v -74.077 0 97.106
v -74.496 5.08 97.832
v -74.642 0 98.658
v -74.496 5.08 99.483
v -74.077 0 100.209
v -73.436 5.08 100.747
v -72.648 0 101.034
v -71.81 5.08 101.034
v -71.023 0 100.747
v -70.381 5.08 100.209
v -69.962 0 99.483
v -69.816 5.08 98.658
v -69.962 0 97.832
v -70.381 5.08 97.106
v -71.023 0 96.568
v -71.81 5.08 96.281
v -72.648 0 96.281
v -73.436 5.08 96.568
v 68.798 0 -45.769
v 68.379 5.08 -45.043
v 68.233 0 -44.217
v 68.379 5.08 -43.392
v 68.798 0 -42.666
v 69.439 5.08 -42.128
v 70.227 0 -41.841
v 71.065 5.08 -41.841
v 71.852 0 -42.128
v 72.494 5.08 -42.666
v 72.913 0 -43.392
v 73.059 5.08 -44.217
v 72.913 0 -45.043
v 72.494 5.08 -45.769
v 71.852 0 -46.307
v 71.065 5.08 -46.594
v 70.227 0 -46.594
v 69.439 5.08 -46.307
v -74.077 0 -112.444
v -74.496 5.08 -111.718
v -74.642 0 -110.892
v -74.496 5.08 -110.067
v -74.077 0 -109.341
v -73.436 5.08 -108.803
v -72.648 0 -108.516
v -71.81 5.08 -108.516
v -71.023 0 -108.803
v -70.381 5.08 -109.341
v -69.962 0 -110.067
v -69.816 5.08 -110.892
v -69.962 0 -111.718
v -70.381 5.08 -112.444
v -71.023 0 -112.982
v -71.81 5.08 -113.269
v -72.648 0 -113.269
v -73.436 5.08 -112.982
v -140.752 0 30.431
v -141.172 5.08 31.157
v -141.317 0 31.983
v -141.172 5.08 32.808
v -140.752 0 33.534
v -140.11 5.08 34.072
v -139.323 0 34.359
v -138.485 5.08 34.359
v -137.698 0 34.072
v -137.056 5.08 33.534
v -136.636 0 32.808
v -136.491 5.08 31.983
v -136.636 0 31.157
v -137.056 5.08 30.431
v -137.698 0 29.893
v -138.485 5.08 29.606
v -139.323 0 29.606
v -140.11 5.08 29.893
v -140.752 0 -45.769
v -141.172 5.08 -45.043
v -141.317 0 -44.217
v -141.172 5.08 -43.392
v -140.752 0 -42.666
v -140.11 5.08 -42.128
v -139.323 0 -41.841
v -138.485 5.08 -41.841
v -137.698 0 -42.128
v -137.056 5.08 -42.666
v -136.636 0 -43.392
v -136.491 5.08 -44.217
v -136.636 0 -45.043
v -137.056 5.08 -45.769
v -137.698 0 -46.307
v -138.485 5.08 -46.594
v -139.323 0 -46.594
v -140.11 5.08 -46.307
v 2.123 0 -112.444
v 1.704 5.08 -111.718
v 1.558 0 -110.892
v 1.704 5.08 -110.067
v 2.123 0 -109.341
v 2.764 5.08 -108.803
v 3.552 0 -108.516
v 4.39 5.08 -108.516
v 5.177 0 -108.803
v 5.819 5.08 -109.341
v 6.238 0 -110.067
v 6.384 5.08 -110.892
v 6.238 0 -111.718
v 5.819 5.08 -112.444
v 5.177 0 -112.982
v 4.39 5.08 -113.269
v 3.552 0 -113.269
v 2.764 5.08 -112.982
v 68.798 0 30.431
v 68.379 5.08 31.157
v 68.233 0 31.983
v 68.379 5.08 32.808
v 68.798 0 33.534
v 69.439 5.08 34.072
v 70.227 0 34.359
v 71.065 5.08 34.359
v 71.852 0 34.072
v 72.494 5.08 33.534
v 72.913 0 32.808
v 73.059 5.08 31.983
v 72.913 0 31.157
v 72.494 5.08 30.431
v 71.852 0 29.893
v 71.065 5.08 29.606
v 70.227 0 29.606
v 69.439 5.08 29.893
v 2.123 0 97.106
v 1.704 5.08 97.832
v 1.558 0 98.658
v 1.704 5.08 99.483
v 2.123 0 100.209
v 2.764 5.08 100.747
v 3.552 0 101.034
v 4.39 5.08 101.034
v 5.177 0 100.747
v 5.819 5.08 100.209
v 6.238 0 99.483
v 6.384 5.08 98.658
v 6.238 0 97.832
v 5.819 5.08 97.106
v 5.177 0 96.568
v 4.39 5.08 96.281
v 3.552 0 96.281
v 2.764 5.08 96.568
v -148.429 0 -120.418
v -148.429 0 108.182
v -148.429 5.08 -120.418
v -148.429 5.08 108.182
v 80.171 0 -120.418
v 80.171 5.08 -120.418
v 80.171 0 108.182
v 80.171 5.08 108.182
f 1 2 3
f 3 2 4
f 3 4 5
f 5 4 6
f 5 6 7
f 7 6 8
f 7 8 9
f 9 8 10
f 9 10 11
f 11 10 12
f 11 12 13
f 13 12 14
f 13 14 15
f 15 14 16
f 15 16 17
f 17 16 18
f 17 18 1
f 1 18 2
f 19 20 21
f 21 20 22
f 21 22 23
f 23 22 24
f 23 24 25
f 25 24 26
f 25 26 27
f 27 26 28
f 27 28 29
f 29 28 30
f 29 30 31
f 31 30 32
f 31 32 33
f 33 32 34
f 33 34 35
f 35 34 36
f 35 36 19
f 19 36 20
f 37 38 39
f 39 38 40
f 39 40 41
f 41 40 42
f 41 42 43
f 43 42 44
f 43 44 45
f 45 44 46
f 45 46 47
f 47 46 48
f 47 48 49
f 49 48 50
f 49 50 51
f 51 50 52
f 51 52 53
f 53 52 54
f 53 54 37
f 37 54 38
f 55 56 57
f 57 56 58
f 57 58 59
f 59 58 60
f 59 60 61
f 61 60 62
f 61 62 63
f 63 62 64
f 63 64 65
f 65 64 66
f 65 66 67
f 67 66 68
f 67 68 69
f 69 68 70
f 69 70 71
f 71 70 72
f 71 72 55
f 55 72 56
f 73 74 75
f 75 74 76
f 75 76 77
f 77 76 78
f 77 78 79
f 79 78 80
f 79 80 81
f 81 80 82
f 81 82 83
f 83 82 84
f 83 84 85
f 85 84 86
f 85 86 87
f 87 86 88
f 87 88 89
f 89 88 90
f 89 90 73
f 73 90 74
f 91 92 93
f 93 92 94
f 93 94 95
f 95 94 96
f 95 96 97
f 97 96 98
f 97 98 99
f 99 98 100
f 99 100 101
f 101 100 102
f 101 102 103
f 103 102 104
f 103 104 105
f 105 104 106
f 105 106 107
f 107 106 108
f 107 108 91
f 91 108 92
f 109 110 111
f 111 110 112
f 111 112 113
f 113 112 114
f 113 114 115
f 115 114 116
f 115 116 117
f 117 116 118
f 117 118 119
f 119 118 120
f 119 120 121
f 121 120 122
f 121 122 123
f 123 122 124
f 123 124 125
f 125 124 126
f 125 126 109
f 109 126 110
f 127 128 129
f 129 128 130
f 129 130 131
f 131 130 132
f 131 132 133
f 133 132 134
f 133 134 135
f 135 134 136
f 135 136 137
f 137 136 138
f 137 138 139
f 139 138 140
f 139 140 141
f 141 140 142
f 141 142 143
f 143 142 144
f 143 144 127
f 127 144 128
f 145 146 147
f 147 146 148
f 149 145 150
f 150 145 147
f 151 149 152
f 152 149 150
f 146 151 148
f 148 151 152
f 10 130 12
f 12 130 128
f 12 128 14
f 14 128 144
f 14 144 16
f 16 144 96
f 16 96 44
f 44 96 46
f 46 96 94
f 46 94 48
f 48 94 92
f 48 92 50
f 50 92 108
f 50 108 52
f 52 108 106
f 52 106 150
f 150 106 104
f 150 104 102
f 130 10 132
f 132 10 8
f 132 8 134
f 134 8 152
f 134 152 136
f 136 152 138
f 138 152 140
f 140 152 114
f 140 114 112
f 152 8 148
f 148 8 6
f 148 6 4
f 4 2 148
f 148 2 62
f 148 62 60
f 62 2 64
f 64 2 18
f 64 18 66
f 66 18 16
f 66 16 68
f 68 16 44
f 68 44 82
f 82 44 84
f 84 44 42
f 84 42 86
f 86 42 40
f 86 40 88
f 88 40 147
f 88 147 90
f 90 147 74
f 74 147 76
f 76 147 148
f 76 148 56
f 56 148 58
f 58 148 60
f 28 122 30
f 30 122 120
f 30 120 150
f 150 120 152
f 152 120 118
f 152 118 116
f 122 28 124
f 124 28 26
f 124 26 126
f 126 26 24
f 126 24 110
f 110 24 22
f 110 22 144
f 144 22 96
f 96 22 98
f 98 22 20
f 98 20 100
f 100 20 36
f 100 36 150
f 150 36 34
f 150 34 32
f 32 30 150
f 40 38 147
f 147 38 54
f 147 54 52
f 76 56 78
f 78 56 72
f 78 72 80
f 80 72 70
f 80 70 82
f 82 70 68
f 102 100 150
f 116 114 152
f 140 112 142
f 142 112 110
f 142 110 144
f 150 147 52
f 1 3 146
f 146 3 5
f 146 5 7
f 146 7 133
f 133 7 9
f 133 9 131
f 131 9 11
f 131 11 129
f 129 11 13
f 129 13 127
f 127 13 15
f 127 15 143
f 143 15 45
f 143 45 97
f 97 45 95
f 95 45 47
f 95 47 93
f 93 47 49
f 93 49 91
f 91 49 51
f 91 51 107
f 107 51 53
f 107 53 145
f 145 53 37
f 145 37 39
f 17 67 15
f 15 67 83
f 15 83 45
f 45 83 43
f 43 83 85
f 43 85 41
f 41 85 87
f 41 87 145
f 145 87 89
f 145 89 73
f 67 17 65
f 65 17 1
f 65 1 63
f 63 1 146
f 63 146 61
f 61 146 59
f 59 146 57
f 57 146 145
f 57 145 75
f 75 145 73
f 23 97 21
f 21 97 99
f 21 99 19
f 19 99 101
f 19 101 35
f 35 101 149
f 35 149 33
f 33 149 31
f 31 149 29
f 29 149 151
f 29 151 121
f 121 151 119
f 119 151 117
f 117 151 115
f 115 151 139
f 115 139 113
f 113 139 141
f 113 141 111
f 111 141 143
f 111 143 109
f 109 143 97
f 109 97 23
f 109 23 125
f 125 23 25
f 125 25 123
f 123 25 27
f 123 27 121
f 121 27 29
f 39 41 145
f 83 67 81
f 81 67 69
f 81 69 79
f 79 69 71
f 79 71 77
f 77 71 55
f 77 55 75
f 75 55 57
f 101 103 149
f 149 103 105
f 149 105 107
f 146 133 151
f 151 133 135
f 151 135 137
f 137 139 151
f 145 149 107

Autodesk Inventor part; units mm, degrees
ref_plane "YZ Plane" through (0, 0, 0) normal (1, 0, 0) x (0, 1, 0)
ref_plane "XZ Plane" through (0, 0, 0) normal (0, 1, 0) x (-1, 0, 0)
ref_plane "XY Plane" through (0, 0, 0) normal (0, 0, 1) x (1, 0, 0)
sketch "Sketch1" plane through (0, 0, 0) normal (0, 1, 0) x (-1, 0, 0)
  line L0 (148.429, 108.1825) -> (-80.171, 108.1825)
  line L1 (-80.171, 108.1825) -> (-80.171, -120.4175)
  line L2 (-80.171, -120.4175) -> (148.429, -120.4175)
  line L3 (148.429, -120.4175) -> (148.429, 108.1825)
  point P0 (0, 0)
  dimension "d0" = 228.6
  dimension "d1" = 228.6
extrude "Extrusion1" add sketch "Sketch1" along normal blind 5.08
sketch "Sketch2" plane through (0, 5.08, 0) normal (0, 1, 0) x (1, 0, 0)
  line L0 (-148.429, -108.1825) -> (80.171, -108.1825) projected
  line L1 (80.171, 120.4175) -> (-148.429, 120.4175) projected
  line L2 (-148.429, 120.4175) -> (-148.429, -108.1825) projected
  line L3 (80.171, -108.1825) -> (80.171, 120.4175) projected
  point P0 (0, 0)
  point P1 (-138.904, -31.9825)
  point P2 (-138.904, 44.2175)
  point P3 (-72.229, 110.8925)
  point P4 (3.971, 110.8925)
  point P5 (70.646, 44.2175)
  point P6 (70.646, -31.9825)
  point P7 (-72.229, -98.6575)
  point P8 (3.971, -98.6575)
  dimension "d4" = 76.2
  dimension "d5" = 76.2
  dimension "d6" = 76.2
  dimension "d7" = 9.525
  dimension "d8" = 9.525
  dimension "d9" = 76.2
  dimension "d10" = 9.525
  dimension "d11" = 76.2
  dimension "d12" = 9.525
  dimension "d13" = 9.525
hole "Hole1" at (-138.904, 5.08, 31.9825) at (-138.904, 5.08, -44.2175) at (-72.229, 5.08, -110.8925) at (3.971, 5.08, -110.8925) at (70.646, 5.08, -44.2175) at (70.646, 5.08, 31.9825) at (-72.229, 5.08, 98.6575) at (3.971, 5.08, 98.6575) direction (0, -1, 0) diameter 4.826 end through all
equation "\"d0\" = ControlPlateLength"
equation "\"d1\" = ControlPlateLength"
equation "\"d2\" = WallWidth"
equation "\"d7\" = ControlHoleBoltHoleMid"
equation "\"d8\" = ControlHoleBoltHoleMid"
equation "\"d10\" = ControlHoleBoltHoleMid"
equation "\"d12\" = ControlHoleBoltHoleMid"
equation "\"d13\" = ControlHoleBoltHoleMid"
equation "\"DSLength\" = 1371.6"
equation "\"DSWidth\" = 304.8"
equation "\"DCDeckHeight\" = 76.2"
equation "\"WallWidth\" = 5.08"
equation "\"EdgeAngle\" = 10deg"
equation "\"LengthCuts\" = 152.4"
equation "\"WidthCuts\" = 50.8"
equation "\"PartLength\" = 228.6"
equation "\"PartWidth\" = 152.4"
equation "\"BoltHoldDiam\" = 6.35"
equation "\"ControlPlateLength\" = 228.6"
equation "\"ControlPlateWidth\" = 228.6"
equation "\"ControlPlateShelfLength\" = 19.05"
equation "\"ControlHoleLength\" = 190.5"
equation "\"ControlHoleWidth\" = 190.5"
equation "\"ControlHoleFromSide\" = 63.5"
equation "\"ControlHoleBoltHoleMid\" = 9.525"
equation "\"DU1CHLength\" = 146.05"
equation "\"DU1CHWidth\" = 69.85"
equation "\"CPFromBack\" = 63.5"
equation "\"CPDeckHeight\" = 71.12"
equation "\"CPFromSide\" = 63.5"
equation "\"ControlPlateScrewLength\" = 76.2"
equation "\"DSBackHeight\" = 127"
equation "\"BackShelf\" = 25.4"
equation "\"MainAngle\" = 168.22deg"
equation "\"CPDWidthHole\" = 120.65"
equation "\"CPDLengthHole\" = 146.05"
equation "\"DownBackHeight\" = 130.7084"
properties part number "ControlPlate"
